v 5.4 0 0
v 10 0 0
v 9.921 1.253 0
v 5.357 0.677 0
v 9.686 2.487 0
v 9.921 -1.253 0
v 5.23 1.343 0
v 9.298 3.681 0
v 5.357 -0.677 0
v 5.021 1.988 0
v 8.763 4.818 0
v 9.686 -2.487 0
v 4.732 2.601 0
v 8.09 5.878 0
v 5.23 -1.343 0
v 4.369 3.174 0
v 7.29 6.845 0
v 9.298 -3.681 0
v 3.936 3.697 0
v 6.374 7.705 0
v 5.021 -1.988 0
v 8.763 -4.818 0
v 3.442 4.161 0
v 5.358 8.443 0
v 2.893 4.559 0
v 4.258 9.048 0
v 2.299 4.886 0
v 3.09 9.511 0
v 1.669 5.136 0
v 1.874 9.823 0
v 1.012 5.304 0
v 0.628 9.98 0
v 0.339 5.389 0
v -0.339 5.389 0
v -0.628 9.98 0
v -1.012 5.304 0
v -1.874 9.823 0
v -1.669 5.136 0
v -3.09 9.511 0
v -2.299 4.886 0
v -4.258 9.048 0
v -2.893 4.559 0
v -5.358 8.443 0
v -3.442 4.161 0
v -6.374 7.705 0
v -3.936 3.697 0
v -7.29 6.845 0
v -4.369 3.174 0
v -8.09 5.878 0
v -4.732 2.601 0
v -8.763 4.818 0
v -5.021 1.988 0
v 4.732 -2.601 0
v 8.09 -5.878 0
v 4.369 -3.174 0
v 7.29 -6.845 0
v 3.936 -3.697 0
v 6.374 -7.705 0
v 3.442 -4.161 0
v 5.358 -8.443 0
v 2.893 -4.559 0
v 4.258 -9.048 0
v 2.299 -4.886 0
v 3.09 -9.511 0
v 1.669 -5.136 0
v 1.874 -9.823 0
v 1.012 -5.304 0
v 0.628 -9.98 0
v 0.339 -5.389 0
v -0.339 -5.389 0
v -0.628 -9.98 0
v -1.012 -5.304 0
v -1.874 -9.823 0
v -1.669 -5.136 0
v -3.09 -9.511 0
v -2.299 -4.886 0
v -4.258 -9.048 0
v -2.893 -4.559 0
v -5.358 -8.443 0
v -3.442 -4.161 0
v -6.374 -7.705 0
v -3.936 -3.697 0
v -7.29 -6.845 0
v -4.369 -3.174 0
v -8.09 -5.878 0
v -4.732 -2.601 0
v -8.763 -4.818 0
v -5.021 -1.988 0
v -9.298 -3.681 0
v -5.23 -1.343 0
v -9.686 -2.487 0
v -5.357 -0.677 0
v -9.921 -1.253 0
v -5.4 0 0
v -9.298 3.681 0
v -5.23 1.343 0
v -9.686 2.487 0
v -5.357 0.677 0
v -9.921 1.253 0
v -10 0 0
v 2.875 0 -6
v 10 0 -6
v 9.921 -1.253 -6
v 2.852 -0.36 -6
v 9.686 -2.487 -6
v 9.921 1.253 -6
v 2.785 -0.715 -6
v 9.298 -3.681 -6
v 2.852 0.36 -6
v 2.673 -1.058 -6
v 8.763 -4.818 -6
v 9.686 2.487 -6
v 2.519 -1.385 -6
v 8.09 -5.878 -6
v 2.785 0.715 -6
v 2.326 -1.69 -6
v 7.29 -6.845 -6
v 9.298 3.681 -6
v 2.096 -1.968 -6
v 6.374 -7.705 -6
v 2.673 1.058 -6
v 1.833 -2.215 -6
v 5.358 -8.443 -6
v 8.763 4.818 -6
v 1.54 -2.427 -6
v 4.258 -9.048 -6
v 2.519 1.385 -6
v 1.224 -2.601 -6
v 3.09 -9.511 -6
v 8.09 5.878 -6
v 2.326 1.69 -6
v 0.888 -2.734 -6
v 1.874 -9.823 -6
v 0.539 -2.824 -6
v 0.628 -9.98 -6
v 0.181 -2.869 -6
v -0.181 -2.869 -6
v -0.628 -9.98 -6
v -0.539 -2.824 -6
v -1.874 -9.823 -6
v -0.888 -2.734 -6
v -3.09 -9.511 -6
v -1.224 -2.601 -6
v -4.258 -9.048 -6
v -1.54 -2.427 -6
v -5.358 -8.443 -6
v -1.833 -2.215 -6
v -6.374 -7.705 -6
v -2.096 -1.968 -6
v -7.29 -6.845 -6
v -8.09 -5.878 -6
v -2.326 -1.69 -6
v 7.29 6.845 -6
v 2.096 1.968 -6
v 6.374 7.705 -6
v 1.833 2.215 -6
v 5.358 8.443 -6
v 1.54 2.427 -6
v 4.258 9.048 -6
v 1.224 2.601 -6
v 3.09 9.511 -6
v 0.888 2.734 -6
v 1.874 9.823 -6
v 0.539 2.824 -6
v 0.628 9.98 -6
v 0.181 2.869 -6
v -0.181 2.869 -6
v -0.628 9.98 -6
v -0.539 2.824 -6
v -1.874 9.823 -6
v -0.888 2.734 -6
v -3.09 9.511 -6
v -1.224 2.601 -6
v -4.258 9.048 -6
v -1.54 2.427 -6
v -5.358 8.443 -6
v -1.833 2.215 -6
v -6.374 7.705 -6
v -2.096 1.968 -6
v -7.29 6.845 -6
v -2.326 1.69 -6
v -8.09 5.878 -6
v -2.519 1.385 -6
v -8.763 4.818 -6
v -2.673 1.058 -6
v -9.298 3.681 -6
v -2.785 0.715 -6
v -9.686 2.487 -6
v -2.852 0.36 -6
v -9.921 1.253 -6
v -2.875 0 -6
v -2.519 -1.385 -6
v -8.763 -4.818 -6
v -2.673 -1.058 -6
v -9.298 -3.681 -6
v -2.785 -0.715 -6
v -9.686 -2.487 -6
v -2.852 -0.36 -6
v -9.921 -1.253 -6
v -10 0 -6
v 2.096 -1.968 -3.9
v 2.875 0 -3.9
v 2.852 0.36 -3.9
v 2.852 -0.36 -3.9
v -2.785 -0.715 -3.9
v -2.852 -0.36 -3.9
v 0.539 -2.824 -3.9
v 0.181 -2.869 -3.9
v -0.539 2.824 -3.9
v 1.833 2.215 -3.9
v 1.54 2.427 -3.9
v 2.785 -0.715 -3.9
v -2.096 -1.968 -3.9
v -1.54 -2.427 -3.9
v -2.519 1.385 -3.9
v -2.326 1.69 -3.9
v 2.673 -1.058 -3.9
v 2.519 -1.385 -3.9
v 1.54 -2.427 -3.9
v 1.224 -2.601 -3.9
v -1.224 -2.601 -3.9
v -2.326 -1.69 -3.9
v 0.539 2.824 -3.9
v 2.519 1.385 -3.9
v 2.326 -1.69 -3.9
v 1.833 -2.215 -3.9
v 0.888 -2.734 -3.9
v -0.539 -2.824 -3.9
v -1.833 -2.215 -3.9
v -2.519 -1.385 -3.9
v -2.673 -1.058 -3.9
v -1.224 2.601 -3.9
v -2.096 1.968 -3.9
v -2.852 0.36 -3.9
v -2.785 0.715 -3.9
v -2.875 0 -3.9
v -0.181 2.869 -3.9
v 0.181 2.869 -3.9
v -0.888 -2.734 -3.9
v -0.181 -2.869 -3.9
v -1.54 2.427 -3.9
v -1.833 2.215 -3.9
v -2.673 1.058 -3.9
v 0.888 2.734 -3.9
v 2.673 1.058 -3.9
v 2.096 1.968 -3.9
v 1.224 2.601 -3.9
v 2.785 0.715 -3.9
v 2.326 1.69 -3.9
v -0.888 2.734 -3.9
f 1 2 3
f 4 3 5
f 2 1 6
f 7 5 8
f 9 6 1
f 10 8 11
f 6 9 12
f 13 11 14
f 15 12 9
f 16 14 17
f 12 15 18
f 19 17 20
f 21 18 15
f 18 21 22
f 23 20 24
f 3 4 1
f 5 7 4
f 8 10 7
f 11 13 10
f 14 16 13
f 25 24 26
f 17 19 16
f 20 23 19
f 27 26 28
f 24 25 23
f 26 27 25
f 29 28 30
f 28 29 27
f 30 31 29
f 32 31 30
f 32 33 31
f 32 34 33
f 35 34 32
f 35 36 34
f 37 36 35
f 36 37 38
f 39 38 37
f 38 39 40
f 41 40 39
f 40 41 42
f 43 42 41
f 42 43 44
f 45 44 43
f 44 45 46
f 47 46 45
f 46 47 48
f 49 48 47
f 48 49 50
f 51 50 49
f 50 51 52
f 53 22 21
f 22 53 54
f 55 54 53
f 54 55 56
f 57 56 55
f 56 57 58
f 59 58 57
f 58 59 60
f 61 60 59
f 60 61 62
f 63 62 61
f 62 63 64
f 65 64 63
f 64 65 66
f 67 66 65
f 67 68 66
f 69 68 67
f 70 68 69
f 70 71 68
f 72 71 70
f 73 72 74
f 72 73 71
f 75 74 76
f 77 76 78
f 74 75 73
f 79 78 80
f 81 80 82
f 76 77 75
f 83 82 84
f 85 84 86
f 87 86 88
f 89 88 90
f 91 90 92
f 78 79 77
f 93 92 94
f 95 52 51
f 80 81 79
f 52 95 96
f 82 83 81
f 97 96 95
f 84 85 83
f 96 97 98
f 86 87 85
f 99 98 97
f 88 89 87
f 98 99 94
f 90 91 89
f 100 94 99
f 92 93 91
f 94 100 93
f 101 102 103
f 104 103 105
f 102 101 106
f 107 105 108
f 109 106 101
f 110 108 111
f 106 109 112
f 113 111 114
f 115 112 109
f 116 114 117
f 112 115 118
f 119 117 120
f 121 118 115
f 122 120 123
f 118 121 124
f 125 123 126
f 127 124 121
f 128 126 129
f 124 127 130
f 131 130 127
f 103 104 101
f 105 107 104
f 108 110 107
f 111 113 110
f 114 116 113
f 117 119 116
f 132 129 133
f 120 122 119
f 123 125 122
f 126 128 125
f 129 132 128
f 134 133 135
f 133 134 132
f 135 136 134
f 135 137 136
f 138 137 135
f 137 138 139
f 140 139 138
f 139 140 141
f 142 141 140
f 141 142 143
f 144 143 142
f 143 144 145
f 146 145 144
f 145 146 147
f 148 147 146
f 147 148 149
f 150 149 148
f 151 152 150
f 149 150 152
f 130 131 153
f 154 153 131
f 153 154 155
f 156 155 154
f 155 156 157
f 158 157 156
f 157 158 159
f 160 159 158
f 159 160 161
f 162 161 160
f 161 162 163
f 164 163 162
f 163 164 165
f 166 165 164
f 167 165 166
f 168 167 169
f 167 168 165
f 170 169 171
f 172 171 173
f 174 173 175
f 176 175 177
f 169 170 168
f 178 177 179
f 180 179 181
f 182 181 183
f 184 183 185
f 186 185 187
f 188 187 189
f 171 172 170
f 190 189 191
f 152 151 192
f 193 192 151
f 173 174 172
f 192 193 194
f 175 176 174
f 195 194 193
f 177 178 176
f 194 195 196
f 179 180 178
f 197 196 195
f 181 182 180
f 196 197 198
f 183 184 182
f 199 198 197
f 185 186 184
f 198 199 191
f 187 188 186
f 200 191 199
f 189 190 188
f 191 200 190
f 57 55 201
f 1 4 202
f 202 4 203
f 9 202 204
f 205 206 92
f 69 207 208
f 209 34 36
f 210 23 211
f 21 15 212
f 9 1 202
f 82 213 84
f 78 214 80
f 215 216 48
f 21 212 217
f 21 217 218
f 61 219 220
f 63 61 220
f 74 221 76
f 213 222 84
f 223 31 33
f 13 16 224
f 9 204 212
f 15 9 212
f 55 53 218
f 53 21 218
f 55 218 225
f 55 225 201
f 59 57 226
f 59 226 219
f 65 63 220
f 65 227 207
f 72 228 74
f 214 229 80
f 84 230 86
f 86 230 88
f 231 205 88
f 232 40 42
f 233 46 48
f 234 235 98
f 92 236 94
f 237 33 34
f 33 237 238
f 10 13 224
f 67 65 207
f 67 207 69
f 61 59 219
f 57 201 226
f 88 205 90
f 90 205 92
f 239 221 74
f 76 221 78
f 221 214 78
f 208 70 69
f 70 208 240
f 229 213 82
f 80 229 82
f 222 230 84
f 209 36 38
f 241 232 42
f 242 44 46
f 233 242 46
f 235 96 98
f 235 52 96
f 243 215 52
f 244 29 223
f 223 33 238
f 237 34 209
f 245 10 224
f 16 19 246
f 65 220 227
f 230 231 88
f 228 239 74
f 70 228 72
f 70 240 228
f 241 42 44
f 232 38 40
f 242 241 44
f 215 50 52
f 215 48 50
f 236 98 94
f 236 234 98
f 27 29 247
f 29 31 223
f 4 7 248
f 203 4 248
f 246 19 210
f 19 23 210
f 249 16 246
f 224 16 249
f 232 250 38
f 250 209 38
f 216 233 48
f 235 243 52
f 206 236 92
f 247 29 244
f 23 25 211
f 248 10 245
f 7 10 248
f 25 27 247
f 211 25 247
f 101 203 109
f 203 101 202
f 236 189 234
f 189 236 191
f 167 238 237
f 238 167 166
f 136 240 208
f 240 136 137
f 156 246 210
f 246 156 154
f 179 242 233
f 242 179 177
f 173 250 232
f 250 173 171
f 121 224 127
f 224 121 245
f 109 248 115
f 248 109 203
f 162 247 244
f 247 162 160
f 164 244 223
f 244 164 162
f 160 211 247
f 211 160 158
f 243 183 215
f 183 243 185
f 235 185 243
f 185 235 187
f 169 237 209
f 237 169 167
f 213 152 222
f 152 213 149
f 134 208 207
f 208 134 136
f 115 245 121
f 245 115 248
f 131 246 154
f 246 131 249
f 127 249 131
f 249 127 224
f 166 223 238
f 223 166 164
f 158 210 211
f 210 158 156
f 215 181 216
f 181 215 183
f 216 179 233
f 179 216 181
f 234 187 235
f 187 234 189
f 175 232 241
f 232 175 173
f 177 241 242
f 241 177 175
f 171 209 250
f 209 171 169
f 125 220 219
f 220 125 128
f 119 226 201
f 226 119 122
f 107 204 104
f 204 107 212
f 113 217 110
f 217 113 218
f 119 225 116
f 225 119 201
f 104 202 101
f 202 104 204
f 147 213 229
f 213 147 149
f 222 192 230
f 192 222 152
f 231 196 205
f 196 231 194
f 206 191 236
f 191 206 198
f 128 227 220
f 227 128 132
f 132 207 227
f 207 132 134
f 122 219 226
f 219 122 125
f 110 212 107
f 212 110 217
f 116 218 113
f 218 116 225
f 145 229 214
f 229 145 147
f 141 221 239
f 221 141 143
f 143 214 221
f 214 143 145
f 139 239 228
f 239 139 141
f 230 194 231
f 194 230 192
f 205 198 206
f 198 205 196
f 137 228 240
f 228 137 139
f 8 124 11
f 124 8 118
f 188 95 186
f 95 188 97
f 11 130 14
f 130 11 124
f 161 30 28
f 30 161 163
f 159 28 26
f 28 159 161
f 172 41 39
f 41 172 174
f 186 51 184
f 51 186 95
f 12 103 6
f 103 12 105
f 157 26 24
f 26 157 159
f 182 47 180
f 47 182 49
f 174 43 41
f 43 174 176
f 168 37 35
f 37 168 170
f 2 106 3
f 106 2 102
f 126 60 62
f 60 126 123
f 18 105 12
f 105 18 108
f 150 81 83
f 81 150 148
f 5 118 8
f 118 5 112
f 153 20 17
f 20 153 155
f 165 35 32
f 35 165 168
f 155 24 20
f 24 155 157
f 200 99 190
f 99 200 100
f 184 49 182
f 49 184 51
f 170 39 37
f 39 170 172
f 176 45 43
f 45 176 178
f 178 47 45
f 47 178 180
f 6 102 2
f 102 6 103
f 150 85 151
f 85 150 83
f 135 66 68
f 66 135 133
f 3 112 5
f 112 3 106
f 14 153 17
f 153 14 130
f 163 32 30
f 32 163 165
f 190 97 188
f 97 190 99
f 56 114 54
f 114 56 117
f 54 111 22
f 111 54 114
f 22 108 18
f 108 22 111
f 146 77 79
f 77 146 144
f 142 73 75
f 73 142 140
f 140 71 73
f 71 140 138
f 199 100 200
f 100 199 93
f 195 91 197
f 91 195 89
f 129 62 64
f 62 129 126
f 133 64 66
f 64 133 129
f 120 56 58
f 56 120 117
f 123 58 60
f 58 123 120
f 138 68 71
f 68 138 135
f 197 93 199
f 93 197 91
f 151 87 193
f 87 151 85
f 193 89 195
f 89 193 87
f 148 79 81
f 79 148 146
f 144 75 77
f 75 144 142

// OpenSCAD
$fn = 50;


difference() {
	union() {
		translate(v = [0, 0, -6.0000000000]) {
			cylinder(h = 6, r = 10.0000000000);
		}
		cylinder(h = 0, r = 13.0000000000);
	}
	union() {
		translate(v = [0, 0, 0]) {
			rotate(a = [0, 0, 0]) {
				difference() {
					union() {
						#translate(v = [0, 0, -6.0000000000]) {
							cylinder(h = 6, r = 2.6000000000);
						}
						#translate(v = [0, 0, -3.9000000000]) {
							cylinder(h = 3.9000000000, r1 = 2.8750000000, r2 = 5.4000000000);
						}
						#translate(v = [0, 0, -6.0000000000]) {
							cylinder(h = 6, r = 2.8750000000);
						}
						#translate(v = [0, 0, -6.0000000000]) {
							cylinder(h = 6, r = 2.6000000000);
						}
					}
					union();
				}
			}
		}
	}
}
